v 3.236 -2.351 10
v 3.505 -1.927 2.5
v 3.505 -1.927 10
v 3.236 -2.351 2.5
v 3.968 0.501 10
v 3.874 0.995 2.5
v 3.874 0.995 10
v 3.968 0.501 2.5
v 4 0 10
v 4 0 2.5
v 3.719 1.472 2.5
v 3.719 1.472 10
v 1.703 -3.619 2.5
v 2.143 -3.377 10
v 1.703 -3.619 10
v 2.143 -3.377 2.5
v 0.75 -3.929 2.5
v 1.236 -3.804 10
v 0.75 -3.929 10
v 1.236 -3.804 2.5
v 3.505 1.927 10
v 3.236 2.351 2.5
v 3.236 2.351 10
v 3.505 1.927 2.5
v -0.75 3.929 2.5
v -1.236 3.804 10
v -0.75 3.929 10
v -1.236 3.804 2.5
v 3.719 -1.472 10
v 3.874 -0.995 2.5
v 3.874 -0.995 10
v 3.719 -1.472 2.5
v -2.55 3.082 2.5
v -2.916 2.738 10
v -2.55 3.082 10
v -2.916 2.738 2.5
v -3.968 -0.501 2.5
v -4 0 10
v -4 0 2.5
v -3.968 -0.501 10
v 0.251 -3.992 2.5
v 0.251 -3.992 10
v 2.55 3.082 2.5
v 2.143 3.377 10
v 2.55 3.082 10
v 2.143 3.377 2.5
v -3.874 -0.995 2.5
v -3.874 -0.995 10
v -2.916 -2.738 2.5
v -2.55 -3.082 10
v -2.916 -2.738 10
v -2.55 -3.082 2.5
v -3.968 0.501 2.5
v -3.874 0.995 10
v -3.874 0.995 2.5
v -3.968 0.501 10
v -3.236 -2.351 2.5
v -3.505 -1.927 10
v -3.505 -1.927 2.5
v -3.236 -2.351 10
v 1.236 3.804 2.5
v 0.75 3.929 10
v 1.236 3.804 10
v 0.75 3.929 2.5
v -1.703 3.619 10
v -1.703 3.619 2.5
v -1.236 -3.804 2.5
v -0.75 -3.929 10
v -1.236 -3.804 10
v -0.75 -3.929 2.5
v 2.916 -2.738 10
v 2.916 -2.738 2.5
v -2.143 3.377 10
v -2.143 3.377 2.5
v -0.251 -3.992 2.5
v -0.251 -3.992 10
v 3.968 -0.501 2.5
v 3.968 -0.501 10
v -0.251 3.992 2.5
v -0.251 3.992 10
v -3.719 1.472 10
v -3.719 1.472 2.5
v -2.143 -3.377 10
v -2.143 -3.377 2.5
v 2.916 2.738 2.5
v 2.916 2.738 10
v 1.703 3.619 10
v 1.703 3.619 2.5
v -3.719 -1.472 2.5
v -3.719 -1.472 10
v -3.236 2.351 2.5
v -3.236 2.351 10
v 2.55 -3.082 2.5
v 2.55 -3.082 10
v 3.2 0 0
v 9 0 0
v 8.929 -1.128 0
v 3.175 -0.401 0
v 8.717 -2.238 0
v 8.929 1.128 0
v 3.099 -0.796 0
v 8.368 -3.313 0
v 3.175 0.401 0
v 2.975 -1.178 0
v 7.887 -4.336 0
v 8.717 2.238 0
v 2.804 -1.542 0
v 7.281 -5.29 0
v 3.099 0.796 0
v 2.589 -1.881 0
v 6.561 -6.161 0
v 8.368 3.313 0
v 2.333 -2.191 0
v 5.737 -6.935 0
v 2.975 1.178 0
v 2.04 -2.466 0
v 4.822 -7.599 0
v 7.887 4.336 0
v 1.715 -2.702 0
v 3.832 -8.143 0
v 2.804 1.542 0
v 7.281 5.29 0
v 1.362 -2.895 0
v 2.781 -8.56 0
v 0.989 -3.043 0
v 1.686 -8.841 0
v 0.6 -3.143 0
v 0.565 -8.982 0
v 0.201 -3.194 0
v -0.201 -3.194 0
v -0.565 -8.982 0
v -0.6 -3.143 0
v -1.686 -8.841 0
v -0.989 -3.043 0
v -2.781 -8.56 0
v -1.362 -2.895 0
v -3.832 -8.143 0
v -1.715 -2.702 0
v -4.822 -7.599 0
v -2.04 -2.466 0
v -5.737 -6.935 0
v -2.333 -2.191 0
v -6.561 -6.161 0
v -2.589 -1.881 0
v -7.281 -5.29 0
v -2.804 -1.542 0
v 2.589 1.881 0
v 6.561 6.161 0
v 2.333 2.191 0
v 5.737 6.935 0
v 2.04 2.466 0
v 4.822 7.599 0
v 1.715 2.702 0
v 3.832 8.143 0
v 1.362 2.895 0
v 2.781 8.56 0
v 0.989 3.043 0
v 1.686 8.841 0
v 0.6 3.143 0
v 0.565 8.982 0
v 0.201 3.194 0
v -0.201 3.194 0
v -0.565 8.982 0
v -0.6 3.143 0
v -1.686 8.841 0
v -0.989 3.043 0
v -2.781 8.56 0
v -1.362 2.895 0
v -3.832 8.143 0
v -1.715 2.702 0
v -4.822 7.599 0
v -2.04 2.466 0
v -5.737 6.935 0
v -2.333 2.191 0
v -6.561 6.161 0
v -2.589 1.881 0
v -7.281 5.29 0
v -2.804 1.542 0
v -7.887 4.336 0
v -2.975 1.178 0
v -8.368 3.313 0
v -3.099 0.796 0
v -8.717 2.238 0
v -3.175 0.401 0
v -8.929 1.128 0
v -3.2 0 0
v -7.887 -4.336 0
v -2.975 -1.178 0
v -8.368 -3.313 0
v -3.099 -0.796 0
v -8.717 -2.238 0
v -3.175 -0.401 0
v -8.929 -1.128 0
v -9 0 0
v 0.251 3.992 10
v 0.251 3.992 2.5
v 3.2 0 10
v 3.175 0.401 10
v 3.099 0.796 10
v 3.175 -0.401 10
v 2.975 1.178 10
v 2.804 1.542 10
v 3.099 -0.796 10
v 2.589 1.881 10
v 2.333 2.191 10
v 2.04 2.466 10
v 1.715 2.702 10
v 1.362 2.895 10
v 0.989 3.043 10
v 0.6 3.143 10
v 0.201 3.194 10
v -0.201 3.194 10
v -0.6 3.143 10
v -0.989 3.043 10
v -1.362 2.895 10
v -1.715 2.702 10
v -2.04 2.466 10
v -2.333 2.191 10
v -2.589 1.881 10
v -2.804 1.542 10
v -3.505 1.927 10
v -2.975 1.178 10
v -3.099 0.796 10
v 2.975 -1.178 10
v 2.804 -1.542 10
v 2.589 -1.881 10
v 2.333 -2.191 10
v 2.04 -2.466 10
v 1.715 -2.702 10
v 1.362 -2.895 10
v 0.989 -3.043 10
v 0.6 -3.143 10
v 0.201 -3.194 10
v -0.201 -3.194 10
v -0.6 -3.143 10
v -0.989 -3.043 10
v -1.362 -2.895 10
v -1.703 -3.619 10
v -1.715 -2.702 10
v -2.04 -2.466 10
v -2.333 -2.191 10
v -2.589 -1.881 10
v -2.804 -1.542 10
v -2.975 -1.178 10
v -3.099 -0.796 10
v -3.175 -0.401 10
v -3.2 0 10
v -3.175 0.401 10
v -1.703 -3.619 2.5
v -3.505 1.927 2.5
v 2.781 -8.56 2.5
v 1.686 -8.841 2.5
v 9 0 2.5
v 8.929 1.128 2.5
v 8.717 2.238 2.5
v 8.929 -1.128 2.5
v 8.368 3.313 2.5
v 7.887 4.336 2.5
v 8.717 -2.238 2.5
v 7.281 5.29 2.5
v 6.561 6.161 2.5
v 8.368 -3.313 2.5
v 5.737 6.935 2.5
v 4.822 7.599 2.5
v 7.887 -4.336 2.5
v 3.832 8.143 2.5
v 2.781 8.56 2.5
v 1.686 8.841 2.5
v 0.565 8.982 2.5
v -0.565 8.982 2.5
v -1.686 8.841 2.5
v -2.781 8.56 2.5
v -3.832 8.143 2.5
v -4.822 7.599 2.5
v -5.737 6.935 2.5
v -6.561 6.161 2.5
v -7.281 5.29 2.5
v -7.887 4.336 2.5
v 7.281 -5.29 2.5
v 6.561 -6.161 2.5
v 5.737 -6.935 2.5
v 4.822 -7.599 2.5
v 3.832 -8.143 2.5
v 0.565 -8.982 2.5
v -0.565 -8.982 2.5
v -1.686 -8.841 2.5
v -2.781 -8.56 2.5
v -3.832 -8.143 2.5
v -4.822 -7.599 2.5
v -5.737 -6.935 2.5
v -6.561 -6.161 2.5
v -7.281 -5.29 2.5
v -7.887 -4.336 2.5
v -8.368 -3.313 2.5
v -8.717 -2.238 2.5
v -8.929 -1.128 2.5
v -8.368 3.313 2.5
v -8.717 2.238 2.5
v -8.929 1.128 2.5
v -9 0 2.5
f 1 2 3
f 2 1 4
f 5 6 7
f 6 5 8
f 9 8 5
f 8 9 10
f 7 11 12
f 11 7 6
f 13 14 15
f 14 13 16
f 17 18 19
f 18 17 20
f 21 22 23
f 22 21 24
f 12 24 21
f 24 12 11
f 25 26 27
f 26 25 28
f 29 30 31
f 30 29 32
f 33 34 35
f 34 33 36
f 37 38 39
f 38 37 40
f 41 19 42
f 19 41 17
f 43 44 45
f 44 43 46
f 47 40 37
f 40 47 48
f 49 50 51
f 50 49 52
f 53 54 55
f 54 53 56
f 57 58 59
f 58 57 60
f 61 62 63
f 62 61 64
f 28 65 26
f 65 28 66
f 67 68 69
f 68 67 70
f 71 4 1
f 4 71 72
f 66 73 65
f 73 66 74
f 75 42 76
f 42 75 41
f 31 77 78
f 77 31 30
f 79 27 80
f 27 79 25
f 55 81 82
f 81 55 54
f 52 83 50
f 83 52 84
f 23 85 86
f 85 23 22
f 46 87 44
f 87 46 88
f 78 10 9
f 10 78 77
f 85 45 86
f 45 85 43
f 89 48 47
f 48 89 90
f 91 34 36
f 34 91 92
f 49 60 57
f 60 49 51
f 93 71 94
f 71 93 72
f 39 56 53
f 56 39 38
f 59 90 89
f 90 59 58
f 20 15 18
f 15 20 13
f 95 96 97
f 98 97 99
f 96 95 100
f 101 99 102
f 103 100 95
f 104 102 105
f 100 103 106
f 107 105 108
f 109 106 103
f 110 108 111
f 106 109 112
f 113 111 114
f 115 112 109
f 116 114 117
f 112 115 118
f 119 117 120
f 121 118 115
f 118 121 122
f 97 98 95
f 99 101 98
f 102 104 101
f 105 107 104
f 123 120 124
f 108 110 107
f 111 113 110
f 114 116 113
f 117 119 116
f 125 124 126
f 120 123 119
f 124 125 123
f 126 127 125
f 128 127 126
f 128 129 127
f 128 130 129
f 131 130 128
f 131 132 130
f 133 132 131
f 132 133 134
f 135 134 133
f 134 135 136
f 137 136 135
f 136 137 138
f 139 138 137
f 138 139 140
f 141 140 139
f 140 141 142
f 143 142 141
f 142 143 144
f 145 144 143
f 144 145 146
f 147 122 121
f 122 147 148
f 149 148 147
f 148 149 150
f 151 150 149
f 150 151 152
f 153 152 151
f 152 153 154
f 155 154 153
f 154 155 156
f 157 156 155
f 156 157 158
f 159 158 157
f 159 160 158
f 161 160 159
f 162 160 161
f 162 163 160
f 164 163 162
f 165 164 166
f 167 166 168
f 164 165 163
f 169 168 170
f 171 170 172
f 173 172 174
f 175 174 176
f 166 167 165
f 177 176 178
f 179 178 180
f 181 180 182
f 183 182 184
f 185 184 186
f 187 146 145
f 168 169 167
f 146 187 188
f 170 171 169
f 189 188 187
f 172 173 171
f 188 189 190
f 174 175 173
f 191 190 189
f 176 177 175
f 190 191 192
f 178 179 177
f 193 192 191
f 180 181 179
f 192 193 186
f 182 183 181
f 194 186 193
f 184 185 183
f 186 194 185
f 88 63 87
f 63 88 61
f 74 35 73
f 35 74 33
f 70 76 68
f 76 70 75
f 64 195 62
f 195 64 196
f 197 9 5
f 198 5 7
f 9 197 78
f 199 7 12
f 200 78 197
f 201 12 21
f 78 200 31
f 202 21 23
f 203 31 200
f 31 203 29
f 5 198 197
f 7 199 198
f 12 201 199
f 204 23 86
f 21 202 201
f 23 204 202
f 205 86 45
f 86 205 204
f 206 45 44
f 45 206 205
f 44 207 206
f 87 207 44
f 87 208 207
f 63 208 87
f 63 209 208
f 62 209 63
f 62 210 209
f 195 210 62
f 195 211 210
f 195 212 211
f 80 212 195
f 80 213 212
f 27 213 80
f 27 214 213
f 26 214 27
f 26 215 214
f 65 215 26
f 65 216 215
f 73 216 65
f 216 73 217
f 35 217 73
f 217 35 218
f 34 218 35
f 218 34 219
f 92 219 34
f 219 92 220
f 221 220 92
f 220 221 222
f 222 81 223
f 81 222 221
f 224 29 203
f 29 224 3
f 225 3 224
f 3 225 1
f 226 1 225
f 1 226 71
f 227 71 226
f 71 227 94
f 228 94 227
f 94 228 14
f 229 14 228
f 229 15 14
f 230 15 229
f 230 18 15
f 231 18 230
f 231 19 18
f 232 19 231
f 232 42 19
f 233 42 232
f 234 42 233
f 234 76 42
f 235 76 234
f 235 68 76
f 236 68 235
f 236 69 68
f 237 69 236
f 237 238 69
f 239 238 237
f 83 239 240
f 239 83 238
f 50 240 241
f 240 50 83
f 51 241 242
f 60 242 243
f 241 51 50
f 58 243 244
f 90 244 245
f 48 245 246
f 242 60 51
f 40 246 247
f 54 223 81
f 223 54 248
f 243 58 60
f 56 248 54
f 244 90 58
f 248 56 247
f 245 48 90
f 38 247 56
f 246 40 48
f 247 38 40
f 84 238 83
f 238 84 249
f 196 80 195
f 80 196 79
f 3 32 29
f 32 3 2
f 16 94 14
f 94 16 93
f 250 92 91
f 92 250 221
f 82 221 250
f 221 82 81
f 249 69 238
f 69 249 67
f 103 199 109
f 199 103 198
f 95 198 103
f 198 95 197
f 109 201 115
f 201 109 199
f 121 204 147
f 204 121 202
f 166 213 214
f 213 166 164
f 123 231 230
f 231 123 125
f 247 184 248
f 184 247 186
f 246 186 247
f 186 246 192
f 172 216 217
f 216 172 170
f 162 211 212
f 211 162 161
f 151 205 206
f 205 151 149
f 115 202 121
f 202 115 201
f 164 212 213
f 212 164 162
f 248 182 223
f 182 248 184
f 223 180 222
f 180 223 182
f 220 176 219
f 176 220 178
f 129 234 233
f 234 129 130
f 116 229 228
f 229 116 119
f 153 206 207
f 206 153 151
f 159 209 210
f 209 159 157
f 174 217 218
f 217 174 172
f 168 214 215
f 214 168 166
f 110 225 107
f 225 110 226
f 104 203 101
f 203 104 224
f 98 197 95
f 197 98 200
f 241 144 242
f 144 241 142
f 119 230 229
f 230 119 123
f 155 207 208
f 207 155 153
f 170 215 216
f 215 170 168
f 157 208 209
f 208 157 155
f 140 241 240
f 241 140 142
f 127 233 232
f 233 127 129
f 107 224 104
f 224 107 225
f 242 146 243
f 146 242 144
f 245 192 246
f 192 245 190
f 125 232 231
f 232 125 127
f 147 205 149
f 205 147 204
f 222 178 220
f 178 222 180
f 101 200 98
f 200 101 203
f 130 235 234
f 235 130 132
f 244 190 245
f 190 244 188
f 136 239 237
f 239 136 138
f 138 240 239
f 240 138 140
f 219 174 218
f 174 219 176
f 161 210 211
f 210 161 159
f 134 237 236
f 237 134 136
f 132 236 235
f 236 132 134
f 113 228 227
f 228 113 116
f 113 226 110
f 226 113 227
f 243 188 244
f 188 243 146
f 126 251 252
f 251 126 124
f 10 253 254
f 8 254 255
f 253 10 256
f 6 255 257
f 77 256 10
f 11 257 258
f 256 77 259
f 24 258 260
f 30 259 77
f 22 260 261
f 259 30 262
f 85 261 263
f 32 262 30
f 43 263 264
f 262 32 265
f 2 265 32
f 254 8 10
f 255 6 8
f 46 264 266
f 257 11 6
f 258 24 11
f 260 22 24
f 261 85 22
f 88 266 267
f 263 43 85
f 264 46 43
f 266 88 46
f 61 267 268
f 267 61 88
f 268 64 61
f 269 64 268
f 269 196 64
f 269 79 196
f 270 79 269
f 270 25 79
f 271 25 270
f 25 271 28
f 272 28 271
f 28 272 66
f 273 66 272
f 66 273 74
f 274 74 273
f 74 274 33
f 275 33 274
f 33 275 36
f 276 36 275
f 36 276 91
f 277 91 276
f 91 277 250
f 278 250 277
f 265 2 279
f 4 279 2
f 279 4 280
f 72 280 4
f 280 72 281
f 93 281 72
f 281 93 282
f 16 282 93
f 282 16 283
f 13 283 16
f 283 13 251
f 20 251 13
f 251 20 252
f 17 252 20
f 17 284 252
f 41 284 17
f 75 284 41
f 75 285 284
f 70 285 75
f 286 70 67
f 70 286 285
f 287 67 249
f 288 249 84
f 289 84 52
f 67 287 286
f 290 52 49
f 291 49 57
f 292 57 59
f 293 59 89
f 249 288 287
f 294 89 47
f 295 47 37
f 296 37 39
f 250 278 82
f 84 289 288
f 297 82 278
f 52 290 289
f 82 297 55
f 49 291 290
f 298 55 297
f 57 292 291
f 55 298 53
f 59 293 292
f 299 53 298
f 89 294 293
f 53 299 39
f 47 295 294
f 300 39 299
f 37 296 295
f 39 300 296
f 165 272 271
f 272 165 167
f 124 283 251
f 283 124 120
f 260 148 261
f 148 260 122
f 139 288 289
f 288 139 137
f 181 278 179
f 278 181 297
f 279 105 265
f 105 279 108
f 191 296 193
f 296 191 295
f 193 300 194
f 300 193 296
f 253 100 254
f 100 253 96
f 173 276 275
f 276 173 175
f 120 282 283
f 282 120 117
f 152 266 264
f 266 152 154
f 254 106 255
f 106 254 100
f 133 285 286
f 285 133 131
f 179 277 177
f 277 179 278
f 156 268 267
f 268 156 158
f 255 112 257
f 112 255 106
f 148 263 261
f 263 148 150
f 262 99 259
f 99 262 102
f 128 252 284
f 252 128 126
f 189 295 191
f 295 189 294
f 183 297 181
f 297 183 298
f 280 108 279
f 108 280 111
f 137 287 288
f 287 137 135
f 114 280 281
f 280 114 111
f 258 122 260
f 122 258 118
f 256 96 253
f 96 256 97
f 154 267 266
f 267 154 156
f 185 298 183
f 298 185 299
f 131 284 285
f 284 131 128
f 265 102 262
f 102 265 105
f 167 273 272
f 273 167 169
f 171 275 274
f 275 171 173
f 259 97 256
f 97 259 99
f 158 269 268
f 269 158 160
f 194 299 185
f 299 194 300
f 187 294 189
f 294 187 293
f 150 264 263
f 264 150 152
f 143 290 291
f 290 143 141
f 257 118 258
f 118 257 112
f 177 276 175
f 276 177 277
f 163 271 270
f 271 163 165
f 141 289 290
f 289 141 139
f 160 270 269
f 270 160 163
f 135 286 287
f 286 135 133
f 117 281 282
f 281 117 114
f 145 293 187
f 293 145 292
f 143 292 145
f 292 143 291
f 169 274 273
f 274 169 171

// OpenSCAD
// Connector for a VHF/UHF ground plane antenna
// Author: Alessandro Paganelli (alessandro.paganelli@gmail.com)

// Measures: in mm

// Constants
$fn = 50;

// Radius + approx 6% tolerance
RADIATOR_RADIUS = 3.2;

// Slab data
SLAB_THICKNESS = 2.5;

// Hole radius - 3% tolerance
SLAB_HOLE_RADIUS = 4.0;

// Connector data
CONNECTOR_HEIGHT = 10.0;
CONNECTOR_WASHER_GAP = 5.0;
CONNECTOR_WASHER_THICKNESS = 2.5;

// Modules
module cylinder_with_hole(radius, hole_radius, height)
{
    difference()
    {
        cylinder(h=height, r=radius);
        cylinder(h=height, r=hole_radius);
    }
}

module washer(external_radius, internal_radius, thickness)
{
    difference()
    {
        cylinder(h=thickness, r=external_radius);
        cylinder(h=thickness, r=internal_radius);
    }
}

// Actual script
union()
{
    cylinder_with_hole(SLAB_HOLE_RADIUS, RADIATOR_RADIUS, CONNECTOR_HEIGHT);
    washer(SLAB_HOLE_RADIUS + CONNECTOR_WASHER_GAP, SLAB_HOLE_RADIUS, CONNECTOR_WASHER_THICKNESS);
}
